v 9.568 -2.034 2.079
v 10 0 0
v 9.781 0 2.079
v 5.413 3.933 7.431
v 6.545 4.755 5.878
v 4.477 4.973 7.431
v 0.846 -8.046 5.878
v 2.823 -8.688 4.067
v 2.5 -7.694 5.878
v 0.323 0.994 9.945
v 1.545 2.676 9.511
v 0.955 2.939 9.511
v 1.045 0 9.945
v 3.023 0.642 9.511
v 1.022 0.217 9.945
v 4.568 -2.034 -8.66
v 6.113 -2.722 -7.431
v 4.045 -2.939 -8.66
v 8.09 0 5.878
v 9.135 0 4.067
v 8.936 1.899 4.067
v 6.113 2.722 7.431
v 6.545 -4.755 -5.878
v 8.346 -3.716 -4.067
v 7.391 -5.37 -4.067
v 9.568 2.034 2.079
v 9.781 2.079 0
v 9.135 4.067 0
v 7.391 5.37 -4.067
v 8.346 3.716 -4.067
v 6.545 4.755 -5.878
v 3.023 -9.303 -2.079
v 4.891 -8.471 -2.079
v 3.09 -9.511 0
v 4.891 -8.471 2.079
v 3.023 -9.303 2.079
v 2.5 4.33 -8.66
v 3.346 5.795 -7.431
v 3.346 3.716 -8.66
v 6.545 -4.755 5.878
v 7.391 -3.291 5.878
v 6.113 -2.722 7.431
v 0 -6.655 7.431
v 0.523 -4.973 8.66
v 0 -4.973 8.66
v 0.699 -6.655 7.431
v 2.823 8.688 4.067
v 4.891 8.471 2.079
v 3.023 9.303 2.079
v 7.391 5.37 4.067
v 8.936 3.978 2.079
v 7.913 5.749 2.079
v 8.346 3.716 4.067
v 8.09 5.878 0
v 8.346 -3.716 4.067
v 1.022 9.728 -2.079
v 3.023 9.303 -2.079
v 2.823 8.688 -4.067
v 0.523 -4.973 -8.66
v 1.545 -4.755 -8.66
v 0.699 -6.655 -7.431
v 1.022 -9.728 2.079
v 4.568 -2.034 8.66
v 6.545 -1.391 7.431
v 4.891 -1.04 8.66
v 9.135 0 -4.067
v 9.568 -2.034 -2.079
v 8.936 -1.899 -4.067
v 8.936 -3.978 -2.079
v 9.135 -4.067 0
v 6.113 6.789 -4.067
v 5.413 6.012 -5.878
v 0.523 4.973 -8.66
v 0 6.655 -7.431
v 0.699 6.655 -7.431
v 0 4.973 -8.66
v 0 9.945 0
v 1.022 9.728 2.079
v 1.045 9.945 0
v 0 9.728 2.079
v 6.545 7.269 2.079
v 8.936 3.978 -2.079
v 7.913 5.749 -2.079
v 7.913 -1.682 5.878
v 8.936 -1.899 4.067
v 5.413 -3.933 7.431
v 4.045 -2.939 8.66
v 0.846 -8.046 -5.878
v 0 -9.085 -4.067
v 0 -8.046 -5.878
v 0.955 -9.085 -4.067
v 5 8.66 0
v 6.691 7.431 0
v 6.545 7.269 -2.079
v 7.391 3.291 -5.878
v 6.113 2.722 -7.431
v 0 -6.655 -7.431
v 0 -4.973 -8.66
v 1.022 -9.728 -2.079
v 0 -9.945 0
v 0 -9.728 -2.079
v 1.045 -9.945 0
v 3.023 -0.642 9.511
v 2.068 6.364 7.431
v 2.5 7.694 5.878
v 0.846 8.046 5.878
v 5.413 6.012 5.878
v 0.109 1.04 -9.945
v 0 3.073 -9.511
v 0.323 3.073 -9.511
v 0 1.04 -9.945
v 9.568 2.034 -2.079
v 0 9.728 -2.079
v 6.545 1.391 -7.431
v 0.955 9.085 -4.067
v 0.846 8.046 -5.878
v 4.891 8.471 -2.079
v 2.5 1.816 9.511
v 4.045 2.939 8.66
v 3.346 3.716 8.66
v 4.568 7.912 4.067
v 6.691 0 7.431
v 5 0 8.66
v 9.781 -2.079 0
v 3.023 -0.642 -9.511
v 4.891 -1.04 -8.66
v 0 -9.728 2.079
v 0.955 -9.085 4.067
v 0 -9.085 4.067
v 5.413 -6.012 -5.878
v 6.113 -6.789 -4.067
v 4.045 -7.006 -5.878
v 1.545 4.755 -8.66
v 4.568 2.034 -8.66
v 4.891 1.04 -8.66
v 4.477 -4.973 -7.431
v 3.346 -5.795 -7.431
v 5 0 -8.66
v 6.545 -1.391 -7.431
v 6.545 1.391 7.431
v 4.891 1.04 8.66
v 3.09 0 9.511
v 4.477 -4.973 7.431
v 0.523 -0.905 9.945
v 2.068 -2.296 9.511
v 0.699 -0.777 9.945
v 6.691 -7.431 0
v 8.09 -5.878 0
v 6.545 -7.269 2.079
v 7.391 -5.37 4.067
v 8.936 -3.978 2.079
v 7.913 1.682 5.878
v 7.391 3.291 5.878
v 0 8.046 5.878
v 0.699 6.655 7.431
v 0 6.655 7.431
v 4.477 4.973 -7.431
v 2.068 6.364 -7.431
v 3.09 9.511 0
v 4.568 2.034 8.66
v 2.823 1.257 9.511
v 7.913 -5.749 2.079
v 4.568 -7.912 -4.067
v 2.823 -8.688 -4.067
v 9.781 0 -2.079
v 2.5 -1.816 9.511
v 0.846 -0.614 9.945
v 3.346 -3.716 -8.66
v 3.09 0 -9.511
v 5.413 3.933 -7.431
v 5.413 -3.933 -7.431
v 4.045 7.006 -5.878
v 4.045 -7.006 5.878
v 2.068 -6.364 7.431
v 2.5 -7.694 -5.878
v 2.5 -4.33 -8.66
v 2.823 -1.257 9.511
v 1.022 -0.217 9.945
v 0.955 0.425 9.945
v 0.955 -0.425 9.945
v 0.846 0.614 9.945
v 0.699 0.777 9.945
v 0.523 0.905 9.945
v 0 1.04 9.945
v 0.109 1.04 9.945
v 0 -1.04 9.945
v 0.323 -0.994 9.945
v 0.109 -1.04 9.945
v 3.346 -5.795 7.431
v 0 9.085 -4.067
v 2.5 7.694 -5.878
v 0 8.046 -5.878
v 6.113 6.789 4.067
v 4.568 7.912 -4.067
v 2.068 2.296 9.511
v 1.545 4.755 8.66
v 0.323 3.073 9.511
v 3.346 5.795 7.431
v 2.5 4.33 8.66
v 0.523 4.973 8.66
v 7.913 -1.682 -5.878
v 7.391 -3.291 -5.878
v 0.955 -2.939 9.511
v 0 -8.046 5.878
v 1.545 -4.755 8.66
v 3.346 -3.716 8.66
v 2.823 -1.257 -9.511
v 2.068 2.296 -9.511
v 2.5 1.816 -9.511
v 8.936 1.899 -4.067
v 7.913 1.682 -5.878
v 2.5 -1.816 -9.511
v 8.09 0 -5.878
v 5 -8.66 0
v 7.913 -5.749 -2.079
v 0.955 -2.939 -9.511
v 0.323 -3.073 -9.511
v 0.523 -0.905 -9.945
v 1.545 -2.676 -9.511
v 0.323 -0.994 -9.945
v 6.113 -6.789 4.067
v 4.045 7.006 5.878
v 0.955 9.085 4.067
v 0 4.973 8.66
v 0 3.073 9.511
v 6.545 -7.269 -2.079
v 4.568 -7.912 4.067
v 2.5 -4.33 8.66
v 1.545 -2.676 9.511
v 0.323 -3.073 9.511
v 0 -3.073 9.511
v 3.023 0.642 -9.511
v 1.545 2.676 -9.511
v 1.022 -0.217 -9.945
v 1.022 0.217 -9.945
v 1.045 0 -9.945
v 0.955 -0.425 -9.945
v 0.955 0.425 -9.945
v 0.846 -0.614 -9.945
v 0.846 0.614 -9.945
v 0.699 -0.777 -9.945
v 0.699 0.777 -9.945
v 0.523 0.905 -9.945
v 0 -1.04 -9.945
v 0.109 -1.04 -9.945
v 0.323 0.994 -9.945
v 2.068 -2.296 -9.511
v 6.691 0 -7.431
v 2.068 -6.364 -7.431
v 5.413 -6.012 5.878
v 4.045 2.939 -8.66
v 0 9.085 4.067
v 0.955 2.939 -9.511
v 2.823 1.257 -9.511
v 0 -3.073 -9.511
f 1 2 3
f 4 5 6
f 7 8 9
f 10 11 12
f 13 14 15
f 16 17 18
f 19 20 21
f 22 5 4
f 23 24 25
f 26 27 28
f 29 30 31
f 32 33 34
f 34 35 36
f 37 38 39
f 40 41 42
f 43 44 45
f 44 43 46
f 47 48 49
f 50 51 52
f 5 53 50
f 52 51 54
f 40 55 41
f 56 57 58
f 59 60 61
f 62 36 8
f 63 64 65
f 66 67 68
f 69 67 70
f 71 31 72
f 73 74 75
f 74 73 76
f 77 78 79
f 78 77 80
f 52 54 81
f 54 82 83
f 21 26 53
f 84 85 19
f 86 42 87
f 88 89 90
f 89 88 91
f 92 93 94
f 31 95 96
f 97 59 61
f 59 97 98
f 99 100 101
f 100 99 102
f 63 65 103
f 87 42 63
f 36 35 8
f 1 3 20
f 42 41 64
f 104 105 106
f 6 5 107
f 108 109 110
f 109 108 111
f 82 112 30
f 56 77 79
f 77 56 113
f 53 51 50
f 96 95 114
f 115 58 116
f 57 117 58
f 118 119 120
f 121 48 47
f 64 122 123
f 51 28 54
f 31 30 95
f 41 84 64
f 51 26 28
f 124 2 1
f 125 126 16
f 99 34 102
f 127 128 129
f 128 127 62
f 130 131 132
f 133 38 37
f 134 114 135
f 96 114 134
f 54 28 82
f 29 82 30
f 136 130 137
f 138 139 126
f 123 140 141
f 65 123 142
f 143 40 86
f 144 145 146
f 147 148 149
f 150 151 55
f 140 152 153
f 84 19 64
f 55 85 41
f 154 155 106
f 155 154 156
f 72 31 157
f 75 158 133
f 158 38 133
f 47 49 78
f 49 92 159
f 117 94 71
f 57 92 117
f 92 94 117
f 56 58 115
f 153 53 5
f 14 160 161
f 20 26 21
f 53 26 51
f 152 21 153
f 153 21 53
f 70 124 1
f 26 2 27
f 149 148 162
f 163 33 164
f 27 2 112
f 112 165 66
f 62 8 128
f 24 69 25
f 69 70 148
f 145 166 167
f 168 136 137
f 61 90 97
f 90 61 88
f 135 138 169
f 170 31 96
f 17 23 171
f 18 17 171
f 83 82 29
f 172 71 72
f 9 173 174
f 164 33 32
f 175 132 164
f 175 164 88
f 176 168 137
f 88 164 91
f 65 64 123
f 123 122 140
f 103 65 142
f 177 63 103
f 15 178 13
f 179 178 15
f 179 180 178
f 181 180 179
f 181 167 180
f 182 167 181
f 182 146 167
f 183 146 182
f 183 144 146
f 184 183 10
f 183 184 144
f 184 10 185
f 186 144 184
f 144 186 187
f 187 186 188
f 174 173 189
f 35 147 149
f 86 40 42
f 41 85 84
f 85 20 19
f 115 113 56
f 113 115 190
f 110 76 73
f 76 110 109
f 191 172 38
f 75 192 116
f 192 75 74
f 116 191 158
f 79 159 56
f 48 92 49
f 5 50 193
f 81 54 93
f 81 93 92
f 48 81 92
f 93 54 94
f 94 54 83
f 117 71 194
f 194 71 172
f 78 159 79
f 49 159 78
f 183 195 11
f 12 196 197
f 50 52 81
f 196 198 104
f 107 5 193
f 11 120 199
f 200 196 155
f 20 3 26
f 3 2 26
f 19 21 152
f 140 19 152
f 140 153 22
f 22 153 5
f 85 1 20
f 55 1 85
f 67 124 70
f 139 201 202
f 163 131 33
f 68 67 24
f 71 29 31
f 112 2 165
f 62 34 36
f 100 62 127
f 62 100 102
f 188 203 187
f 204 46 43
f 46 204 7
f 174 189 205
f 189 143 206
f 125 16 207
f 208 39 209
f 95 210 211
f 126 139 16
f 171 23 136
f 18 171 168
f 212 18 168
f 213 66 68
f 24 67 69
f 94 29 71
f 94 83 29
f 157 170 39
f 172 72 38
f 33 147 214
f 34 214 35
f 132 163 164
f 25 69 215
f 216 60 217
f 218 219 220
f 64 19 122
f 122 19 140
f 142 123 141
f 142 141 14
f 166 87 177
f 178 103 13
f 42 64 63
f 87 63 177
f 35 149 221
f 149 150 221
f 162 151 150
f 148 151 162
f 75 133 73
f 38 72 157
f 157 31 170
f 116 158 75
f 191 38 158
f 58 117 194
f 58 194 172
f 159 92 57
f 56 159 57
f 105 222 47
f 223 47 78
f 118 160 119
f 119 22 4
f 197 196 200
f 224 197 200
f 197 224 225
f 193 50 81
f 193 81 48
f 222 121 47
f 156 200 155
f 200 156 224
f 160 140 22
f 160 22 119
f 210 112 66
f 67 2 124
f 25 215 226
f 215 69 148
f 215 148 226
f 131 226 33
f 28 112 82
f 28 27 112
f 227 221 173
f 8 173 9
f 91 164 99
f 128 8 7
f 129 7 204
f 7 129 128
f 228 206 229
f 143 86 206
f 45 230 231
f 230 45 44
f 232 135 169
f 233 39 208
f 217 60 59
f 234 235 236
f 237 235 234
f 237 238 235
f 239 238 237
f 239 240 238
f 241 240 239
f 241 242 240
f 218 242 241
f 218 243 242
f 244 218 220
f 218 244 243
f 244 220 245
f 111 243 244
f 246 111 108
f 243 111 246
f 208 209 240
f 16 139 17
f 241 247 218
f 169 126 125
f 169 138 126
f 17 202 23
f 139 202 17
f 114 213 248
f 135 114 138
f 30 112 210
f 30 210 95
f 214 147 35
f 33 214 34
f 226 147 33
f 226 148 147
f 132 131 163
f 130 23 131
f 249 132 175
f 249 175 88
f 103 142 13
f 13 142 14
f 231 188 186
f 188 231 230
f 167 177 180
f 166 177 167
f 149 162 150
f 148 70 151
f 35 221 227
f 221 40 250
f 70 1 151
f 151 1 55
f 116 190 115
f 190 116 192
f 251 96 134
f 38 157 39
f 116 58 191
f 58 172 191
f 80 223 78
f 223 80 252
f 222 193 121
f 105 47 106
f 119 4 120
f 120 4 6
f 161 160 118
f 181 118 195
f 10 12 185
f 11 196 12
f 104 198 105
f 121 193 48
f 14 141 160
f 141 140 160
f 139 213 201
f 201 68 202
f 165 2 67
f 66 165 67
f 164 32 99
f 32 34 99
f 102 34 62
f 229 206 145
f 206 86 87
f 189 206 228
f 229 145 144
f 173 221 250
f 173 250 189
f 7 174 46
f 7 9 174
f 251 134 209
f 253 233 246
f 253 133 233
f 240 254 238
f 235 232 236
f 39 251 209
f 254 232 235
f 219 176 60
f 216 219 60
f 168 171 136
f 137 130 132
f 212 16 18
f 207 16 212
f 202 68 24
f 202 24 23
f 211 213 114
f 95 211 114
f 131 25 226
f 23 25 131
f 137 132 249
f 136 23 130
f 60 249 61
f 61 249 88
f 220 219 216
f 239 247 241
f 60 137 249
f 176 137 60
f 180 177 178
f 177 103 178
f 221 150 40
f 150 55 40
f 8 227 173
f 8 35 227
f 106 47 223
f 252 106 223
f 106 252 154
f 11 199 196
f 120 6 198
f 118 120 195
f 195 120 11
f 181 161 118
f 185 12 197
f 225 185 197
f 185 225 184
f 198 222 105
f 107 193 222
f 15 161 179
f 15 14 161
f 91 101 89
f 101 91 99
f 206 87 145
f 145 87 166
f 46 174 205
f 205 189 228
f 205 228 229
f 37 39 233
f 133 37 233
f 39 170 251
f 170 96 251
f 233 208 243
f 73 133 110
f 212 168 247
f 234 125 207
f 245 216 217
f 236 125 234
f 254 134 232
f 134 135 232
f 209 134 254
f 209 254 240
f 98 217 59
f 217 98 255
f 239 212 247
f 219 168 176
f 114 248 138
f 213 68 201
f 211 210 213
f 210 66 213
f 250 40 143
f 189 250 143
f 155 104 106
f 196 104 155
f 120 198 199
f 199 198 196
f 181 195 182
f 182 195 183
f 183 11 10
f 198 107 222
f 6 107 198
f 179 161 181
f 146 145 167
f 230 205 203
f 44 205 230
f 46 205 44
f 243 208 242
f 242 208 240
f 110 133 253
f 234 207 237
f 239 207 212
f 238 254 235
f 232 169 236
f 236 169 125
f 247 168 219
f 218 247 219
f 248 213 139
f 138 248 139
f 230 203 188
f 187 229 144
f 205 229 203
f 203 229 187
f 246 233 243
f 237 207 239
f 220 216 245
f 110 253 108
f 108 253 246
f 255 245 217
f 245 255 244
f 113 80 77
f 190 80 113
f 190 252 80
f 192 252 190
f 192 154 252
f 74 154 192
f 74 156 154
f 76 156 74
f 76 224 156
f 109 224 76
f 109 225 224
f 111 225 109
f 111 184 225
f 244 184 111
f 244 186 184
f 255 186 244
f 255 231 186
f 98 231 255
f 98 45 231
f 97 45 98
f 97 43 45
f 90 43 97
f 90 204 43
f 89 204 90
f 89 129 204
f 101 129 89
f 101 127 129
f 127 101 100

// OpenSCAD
rotate([0,0,180])
difference(){
sphere(20/2);
translate([0,-15,-15])cube(30);
}
